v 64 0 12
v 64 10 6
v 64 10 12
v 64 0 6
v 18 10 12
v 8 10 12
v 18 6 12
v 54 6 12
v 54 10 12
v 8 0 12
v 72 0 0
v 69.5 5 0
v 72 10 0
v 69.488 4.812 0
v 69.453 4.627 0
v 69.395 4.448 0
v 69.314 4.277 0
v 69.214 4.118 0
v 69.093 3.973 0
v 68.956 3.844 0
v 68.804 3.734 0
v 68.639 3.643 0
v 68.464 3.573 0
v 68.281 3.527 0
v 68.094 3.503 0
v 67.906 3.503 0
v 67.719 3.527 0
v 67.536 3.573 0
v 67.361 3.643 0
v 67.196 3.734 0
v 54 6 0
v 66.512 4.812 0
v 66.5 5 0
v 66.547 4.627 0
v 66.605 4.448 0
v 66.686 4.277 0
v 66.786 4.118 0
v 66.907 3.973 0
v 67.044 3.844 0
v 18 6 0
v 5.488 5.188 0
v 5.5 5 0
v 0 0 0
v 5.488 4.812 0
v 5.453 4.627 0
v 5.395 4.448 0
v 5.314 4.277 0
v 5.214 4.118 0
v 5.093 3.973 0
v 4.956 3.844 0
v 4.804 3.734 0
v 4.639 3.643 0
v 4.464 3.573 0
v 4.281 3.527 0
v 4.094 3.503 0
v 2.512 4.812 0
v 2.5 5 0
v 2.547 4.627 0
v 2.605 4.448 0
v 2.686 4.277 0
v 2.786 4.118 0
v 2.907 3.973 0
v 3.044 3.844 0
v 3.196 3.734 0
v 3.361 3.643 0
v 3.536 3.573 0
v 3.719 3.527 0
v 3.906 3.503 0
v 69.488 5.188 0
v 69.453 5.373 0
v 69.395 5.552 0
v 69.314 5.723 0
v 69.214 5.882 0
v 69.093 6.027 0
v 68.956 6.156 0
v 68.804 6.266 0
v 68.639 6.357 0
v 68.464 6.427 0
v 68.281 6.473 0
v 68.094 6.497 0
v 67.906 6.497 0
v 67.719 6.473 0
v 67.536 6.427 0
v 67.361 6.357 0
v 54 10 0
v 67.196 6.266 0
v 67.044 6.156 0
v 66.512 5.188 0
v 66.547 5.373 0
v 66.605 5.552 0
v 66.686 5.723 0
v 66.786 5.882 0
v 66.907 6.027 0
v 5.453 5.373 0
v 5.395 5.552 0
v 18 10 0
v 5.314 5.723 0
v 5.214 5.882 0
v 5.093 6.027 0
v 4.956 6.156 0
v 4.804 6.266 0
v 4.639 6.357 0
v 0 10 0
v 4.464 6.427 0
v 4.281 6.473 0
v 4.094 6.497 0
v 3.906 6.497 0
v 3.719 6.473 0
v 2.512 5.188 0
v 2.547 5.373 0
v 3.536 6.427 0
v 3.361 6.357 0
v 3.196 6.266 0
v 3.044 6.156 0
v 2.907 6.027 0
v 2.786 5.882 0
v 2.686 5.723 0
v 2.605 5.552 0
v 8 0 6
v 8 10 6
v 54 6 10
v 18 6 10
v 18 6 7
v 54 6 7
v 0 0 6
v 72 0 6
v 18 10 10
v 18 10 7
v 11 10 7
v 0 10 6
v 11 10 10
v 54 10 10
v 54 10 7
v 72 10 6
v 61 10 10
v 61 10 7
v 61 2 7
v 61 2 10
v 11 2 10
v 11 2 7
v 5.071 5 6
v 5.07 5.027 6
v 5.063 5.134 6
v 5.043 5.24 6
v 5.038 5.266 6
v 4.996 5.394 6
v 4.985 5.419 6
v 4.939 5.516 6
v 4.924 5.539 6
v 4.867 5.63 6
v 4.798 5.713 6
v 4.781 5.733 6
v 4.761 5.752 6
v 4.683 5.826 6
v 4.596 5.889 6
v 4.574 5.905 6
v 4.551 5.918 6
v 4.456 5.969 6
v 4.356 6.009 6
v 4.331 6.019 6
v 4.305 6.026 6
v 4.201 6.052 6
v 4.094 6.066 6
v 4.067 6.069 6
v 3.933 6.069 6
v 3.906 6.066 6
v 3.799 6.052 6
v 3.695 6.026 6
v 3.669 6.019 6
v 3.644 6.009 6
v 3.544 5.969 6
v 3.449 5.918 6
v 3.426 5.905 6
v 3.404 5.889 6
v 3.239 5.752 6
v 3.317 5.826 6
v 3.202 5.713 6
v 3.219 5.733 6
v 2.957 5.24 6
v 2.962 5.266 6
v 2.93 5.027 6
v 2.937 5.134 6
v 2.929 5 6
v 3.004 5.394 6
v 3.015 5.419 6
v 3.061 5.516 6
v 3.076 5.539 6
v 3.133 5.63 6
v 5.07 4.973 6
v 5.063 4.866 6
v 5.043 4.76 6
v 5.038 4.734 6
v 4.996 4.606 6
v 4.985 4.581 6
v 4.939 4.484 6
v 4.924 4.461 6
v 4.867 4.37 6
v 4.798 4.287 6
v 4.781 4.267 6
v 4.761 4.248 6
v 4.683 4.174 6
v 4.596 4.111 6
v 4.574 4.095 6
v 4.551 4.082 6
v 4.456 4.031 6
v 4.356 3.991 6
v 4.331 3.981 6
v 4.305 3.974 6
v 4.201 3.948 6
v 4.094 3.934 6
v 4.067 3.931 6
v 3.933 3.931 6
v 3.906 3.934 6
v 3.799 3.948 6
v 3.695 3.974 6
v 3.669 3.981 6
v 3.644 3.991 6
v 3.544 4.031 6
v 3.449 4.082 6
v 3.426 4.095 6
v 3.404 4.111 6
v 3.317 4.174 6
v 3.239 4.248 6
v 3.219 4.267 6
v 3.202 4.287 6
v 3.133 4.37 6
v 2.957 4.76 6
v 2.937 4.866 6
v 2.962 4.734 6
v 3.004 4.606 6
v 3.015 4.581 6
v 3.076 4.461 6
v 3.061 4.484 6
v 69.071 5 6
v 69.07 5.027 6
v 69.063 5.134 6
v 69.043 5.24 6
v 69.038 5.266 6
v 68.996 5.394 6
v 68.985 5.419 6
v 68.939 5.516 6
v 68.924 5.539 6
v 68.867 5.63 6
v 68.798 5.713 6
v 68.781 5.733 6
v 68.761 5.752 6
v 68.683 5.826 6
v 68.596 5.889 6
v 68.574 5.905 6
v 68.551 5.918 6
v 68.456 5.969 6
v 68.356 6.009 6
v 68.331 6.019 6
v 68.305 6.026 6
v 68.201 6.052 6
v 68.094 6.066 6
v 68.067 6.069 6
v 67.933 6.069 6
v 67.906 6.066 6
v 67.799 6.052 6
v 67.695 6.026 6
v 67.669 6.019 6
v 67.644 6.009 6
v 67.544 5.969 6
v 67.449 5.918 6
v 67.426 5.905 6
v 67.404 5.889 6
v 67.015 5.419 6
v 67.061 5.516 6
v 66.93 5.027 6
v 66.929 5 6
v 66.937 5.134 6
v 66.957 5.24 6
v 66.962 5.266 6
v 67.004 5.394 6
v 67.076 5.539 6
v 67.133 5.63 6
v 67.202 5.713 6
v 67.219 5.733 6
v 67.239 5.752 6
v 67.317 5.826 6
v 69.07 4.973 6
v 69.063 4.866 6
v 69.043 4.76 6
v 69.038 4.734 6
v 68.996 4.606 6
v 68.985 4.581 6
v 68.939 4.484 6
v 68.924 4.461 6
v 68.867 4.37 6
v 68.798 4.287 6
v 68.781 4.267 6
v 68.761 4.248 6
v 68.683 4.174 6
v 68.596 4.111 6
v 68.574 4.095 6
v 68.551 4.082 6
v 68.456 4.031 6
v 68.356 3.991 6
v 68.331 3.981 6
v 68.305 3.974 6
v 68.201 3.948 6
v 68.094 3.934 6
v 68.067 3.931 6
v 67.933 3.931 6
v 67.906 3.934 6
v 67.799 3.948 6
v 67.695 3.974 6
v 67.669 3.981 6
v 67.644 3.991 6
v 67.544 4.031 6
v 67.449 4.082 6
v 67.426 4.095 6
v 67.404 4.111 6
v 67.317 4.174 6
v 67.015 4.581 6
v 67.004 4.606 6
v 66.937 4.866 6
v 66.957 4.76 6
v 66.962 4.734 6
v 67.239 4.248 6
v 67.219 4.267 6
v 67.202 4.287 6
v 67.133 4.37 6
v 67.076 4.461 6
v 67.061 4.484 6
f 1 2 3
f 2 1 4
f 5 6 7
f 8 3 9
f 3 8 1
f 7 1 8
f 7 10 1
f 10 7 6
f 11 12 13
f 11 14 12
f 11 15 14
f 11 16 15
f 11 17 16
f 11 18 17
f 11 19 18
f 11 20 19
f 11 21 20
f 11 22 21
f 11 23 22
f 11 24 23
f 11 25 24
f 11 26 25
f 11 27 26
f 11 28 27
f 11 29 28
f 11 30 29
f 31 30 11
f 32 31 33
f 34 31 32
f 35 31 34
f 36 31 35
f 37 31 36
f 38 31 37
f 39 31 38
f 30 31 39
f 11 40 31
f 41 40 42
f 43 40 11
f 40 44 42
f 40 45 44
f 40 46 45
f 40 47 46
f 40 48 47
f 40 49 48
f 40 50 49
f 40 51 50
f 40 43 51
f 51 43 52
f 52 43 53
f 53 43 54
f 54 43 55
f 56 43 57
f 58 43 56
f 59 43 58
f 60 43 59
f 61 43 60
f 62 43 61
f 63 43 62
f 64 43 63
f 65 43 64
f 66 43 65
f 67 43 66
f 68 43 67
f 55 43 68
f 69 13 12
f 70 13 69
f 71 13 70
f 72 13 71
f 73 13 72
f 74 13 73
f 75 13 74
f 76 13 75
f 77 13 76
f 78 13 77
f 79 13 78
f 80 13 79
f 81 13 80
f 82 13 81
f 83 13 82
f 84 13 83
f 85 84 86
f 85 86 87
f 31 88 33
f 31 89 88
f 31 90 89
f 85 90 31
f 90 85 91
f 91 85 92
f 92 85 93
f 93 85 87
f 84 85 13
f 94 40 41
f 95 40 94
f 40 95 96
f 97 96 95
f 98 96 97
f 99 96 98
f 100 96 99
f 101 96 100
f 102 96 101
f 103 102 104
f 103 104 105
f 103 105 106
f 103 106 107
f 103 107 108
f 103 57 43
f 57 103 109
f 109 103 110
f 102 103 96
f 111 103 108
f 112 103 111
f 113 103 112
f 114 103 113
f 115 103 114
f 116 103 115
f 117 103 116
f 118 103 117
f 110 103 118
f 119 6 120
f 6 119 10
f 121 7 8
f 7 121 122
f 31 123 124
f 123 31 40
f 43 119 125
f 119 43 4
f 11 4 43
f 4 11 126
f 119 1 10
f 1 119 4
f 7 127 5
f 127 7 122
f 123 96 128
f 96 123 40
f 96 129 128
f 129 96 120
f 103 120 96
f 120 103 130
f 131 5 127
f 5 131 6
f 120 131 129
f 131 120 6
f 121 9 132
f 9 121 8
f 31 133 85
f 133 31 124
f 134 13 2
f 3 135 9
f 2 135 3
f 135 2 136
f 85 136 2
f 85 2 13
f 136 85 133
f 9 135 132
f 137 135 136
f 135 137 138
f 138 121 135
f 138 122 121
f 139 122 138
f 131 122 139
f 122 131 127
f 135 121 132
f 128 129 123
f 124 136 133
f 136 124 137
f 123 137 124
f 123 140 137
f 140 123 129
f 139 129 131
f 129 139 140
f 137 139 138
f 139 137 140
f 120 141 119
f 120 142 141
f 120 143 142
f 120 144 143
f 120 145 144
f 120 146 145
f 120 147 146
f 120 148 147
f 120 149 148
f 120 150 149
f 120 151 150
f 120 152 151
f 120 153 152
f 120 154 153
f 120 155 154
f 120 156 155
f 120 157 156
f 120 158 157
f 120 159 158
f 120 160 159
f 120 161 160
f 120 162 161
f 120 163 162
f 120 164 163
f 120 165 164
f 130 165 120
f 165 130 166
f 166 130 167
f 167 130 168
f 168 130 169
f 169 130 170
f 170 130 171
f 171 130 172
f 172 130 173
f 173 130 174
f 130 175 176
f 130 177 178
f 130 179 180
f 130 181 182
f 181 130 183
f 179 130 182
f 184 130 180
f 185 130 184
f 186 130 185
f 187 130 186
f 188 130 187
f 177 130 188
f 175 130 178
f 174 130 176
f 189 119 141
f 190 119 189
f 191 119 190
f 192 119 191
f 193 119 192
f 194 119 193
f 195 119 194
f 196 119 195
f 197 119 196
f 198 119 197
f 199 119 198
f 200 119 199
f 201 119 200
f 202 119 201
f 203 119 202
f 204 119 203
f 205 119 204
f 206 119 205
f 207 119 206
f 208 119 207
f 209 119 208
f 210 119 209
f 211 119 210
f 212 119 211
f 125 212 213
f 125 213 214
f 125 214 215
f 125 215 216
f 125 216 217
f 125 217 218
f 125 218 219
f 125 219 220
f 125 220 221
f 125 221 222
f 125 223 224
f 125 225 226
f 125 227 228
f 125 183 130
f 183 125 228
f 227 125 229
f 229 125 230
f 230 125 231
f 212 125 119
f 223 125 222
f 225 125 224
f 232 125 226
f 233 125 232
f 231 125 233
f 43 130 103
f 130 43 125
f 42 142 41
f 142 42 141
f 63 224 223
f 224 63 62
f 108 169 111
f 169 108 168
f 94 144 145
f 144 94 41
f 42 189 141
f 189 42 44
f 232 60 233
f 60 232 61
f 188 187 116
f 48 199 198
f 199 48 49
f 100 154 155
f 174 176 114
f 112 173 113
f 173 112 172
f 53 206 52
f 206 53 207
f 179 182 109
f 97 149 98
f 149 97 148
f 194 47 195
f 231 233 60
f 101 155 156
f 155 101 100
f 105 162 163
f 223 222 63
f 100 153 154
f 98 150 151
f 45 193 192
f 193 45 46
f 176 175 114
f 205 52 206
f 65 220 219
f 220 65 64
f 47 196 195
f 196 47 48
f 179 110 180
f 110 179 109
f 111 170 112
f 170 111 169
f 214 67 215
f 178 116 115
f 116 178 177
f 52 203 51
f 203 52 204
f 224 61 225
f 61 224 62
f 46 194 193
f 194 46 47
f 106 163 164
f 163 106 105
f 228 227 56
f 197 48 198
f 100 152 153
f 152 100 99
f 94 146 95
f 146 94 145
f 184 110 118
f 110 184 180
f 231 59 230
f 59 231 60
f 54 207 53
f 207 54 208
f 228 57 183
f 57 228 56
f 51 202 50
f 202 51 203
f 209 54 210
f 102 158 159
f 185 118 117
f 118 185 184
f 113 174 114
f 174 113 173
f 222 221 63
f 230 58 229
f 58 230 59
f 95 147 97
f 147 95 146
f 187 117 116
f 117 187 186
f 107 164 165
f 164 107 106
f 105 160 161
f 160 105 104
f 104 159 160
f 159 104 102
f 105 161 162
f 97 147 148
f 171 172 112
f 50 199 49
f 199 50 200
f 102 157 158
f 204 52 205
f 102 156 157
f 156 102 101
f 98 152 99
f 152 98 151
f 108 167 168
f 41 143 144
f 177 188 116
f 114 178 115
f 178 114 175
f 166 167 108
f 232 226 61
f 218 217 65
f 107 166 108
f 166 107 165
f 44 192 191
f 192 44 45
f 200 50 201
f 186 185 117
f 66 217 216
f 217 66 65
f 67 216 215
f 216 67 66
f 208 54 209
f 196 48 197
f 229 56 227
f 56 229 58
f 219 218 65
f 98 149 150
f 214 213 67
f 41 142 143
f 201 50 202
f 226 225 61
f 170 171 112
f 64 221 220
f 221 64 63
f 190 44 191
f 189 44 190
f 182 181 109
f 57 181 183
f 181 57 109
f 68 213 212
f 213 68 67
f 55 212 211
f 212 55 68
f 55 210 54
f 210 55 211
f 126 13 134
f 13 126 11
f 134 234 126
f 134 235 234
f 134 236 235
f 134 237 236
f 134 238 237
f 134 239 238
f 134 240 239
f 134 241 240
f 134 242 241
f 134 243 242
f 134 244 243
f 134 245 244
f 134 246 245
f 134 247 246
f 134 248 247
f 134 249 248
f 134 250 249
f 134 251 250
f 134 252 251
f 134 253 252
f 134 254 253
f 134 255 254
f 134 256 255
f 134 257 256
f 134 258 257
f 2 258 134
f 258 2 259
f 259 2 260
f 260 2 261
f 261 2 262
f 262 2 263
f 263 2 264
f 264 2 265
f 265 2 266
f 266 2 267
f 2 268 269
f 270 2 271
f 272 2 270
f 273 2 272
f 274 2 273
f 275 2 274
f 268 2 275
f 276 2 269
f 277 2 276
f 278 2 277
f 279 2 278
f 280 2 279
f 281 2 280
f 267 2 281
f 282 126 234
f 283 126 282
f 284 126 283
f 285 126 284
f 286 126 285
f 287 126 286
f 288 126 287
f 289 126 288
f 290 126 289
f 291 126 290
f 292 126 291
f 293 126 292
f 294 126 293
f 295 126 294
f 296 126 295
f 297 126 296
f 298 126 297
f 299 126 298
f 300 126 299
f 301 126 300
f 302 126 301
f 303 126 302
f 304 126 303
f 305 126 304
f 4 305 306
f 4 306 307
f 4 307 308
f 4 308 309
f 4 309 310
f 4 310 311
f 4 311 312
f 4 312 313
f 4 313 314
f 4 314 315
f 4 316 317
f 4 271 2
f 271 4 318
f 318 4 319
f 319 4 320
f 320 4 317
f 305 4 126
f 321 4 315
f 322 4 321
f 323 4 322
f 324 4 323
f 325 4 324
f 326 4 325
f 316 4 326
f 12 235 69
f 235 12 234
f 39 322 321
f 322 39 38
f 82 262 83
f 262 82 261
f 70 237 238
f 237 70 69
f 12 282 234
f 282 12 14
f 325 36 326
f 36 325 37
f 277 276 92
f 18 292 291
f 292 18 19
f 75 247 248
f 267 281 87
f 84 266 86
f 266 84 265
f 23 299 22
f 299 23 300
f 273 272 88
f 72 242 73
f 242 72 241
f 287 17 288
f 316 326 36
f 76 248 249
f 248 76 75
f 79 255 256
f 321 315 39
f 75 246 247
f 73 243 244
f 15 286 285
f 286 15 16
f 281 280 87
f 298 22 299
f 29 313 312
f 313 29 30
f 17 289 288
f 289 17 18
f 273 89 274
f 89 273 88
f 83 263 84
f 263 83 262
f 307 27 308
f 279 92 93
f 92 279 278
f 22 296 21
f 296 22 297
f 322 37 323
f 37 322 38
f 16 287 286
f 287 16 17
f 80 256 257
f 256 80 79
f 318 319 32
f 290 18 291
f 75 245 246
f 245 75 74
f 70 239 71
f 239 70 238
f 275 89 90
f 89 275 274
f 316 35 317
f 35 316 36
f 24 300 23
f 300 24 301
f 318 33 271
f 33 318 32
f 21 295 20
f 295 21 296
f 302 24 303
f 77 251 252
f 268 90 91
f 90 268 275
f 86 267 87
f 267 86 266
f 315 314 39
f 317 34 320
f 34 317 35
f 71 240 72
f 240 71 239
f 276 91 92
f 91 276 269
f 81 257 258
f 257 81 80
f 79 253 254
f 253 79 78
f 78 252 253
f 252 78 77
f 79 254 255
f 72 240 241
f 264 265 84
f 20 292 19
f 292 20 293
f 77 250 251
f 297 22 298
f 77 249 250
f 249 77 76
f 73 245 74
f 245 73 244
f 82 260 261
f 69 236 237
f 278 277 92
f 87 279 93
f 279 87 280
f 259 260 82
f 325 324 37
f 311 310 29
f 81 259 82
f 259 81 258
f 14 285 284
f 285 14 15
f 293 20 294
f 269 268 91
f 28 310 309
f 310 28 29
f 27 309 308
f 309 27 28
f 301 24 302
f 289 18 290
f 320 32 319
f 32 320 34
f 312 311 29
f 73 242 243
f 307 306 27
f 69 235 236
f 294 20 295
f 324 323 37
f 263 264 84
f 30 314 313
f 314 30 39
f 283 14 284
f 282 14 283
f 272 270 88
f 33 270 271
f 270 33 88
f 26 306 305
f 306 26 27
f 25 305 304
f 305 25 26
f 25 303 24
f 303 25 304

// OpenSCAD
$fn=50;

module bracket() {
    difference() {
        union() {
            cube(size=[56,6,12]);
            cube(size=[10,10,12]);
            translate([46,0,0])
                cube(size=[10,10,12]);
        }

        translate([3,2,7])
            cube(size=[50,10,3]);
    }
}

module foot() {
    difference() {
        cube([8,10,6]);
        translate([4,5,0])
            cylinder(h=7,r1=1.5);
    }
}

translate([8,0])
    bracket();
translate([0,0])
    foot();
translate([64,0,0])
    foot();
